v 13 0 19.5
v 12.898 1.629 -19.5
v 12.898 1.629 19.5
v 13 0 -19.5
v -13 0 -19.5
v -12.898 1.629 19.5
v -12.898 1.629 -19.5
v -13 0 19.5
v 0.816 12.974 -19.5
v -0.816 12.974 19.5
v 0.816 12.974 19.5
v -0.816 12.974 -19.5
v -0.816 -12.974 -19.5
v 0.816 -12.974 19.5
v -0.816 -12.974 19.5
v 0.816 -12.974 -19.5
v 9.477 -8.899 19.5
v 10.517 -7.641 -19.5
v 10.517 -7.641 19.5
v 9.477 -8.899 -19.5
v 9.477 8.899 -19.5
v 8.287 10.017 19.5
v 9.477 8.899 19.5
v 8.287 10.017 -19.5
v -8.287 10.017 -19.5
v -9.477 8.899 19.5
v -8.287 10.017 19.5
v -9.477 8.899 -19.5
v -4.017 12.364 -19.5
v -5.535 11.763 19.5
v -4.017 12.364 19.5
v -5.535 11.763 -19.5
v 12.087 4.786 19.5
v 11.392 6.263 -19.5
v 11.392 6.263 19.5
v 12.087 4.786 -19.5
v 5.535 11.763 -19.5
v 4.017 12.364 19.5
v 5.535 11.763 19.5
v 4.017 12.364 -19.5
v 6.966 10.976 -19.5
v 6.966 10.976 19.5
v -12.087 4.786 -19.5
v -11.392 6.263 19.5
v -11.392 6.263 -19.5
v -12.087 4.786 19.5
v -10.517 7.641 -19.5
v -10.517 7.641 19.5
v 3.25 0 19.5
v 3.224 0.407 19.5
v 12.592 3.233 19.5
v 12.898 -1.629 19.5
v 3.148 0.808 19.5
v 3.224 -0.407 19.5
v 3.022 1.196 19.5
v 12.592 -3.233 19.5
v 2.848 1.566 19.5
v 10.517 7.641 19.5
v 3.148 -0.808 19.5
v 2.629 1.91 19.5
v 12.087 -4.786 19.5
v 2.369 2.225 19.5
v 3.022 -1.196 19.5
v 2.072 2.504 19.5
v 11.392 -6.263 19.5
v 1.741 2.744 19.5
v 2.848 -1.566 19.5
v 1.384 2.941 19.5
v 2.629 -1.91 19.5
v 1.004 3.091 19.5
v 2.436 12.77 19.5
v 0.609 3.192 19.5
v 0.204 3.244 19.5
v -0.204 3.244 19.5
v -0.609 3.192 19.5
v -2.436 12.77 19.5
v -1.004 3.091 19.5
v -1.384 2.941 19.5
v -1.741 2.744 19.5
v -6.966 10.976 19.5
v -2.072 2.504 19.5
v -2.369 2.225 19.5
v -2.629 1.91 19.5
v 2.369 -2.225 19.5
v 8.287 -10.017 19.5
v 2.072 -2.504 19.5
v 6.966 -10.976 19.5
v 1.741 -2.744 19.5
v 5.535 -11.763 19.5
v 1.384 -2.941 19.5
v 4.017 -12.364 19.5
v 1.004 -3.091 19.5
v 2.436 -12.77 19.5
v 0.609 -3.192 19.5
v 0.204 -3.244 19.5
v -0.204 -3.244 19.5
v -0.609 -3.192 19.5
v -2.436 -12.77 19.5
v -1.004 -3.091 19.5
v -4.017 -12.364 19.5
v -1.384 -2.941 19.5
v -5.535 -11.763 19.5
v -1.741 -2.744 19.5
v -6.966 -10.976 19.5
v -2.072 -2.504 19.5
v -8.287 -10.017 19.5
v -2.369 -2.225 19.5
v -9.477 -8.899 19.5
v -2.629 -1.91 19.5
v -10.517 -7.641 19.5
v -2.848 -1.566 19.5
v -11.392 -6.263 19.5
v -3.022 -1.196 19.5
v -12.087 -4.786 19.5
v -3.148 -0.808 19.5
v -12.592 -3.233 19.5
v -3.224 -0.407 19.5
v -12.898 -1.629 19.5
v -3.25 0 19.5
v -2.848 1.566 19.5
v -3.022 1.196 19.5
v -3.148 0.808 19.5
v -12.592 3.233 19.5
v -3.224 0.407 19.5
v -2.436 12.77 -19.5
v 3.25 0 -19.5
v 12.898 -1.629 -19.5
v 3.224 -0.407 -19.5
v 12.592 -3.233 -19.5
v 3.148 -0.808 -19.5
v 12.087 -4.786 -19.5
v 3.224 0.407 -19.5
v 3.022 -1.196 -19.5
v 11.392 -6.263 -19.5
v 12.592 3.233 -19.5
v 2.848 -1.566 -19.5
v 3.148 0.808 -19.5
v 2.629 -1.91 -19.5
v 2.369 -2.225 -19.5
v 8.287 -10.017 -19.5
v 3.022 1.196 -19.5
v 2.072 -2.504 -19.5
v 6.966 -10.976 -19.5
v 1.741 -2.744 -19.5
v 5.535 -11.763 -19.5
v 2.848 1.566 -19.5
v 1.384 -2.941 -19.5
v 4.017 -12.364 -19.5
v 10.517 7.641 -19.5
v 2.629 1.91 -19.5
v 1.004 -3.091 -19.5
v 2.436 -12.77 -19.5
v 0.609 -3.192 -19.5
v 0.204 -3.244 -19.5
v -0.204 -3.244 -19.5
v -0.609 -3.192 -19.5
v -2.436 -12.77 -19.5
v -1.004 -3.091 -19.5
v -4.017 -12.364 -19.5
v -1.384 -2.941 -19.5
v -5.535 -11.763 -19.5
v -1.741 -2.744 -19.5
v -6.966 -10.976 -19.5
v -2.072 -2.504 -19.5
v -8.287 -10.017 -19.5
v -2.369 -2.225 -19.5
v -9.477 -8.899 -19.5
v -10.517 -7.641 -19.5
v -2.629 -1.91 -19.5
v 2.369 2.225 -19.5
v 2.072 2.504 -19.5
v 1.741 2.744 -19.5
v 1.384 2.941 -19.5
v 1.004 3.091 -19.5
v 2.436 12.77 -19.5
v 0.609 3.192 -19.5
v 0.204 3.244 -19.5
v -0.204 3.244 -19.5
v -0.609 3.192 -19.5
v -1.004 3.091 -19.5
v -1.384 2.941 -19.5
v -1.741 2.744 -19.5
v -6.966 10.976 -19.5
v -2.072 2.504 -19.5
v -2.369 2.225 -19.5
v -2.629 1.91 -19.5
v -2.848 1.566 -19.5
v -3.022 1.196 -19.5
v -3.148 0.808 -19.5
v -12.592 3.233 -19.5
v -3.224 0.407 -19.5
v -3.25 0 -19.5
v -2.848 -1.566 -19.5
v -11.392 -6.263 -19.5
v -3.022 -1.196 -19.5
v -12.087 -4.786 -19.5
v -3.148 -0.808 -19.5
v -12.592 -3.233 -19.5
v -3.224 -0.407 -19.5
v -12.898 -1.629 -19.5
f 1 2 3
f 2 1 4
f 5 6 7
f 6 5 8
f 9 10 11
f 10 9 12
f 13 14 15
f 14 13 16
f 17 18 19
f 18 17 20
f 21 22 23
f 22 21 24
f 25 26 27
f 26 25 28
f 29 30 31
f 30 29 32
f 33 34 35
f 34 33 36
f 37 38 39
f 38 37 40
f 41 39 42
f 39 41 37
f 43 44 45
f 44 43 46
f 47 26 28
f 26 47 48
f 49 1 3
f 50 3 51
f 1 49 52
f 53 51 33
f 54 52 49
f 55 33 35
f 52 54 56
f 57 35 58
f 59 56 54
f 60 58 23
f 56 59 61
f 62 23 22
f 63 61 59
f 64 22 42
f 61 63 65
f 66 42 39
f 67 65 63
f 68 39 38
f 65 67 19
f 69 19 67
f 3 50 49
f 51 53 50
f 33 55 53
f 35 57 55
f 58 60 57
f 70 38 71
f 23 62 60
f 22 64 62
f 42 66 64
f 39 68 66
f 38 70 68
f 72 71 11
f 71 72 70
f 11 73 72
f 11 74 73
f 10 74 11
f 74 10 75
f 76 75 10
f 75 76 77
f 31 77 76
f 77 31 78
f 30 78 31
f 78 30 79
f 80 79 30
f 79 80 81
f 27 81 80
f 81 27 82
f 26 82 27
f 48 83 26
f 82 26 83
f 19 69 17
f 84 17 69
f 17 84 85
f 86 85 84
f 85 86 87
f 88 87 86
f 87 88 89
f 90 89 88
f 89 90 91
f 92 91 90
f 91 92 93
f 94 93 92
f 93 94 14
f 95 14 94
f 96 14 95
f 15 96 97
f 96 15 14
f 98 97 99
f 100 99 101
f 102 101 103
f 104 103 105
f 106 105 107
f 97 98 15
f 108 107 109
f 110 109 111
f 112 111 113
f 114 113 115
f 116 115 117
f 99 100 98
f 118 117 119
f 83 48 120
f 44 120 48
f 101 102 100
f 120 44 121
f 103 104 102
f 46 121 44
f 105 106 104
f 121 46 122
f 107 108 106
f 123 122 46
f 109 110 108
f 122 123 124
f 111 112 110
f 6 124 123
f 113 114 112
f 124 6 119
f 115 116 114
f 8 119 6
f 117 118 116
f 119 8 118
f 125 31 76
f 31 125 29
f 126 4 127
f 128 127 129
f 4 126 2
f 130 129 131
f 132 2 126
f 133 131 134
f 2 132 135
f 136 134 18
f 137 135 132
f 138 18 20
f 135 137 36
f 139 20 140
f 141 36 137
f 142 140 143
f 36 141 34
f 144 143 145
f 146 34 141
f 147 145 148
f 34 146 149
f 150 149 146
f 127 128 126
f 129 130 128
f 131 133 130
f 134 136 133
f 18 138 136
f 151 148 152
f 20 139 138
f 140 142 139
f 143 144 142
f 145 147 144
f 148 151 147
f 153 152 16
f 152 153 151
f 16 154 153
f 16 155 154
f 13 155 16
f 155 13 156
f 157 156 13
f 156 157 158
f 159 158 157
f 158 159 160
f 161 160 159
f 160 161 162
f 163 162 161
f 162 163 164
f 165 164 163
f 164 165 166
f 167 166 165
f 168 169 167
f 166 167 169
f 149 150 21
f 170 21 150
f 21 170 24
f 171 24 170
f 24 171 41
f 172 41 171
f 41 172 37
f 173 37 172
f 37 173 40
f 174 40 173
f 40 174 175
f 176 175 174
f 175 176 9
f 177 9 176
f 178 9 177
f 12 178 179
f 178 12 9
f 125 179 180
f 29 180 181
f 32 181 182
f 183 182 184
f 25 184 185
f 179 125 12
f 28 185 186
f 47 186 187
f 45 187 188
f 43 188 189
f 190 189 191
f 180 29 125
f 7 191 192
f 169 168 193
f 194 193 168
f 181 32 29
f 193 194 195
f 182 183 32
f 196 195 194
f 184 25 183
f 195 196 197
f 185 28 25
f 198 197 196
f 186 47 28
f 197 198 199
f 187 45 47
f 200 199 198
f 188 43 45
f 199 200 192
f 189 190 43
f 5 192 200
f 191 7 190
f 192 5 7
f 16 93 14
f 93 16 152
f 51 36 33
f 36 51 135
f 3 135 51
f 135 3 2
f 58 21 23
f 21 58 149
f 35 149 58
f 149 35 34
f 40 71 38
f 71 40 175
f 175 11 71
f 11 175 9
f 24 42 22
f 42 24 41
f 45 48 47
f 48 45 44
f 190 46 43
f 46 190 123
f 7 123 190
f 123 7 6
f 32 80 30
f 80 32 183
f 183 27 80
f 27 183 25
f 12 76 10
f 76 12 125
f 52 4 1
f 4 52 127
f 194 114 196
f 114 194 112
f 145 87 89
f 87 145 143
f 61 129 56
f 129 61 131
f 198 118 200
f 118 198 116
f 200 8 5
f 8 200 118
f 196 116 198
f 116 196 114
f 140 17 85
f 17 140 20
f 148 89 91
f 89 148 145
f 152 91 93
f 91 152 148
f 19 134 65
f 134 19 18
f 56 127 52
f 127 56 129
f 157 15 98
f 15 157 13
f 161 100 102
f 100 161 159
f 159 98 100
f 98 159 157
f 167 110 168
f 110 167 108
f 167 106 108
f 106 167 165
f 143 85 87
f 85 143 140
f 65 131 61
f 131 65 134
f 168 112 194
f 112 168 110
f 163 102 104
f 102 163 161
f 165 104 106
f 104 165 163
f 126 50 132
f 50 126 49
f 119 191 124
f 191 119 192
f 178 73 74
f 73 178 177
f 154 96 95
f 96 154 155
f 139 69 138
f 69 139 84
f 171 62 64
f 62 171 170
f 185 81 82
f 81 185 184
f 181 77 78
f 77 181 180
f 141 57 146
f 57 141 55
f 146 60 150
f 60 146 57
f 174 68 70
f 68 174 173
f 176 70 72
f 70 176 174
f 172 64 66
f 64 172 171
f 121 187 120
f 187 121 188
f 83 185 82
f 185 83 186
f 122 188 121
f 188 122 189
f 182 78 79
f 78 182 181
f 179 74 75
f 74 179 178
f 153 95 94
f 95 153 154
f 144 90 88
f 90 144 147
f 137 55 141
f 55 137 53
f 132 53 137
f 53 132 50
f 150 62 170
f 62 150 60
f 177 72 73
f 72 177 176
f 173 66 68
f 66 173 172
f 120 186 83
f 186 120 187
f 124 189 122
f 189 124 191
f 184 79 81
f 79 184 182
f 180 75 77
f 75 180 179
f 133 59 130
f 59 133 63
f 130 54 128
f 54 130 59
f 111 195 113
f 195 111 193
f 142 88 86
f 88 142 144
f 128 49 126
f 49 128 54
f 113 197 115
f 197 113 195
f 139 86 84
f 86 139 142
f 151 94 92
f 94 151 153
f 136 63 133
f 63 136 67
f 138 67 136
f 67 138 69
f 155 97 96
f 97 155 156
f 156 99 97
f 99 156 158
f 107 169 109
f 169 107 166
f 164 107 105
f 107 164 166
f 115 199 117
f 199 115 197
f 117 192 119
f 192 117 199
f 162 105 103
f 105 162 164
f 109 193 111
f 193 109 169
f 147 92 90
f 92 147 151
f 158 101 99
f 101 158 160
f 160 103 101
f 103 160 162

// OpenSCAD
$fn = 50;


difference() {
	union() {
		translate(v = [0, 0, -19.5000000000]) {
			cylinder(h = 39, r = 13.0000000000);
		}
	}
	union() {
		translate(v = [0, 0, -100.0000000000]) {
			cylinder(h = 200, r = 3.2500000000);
		}
	}
}
